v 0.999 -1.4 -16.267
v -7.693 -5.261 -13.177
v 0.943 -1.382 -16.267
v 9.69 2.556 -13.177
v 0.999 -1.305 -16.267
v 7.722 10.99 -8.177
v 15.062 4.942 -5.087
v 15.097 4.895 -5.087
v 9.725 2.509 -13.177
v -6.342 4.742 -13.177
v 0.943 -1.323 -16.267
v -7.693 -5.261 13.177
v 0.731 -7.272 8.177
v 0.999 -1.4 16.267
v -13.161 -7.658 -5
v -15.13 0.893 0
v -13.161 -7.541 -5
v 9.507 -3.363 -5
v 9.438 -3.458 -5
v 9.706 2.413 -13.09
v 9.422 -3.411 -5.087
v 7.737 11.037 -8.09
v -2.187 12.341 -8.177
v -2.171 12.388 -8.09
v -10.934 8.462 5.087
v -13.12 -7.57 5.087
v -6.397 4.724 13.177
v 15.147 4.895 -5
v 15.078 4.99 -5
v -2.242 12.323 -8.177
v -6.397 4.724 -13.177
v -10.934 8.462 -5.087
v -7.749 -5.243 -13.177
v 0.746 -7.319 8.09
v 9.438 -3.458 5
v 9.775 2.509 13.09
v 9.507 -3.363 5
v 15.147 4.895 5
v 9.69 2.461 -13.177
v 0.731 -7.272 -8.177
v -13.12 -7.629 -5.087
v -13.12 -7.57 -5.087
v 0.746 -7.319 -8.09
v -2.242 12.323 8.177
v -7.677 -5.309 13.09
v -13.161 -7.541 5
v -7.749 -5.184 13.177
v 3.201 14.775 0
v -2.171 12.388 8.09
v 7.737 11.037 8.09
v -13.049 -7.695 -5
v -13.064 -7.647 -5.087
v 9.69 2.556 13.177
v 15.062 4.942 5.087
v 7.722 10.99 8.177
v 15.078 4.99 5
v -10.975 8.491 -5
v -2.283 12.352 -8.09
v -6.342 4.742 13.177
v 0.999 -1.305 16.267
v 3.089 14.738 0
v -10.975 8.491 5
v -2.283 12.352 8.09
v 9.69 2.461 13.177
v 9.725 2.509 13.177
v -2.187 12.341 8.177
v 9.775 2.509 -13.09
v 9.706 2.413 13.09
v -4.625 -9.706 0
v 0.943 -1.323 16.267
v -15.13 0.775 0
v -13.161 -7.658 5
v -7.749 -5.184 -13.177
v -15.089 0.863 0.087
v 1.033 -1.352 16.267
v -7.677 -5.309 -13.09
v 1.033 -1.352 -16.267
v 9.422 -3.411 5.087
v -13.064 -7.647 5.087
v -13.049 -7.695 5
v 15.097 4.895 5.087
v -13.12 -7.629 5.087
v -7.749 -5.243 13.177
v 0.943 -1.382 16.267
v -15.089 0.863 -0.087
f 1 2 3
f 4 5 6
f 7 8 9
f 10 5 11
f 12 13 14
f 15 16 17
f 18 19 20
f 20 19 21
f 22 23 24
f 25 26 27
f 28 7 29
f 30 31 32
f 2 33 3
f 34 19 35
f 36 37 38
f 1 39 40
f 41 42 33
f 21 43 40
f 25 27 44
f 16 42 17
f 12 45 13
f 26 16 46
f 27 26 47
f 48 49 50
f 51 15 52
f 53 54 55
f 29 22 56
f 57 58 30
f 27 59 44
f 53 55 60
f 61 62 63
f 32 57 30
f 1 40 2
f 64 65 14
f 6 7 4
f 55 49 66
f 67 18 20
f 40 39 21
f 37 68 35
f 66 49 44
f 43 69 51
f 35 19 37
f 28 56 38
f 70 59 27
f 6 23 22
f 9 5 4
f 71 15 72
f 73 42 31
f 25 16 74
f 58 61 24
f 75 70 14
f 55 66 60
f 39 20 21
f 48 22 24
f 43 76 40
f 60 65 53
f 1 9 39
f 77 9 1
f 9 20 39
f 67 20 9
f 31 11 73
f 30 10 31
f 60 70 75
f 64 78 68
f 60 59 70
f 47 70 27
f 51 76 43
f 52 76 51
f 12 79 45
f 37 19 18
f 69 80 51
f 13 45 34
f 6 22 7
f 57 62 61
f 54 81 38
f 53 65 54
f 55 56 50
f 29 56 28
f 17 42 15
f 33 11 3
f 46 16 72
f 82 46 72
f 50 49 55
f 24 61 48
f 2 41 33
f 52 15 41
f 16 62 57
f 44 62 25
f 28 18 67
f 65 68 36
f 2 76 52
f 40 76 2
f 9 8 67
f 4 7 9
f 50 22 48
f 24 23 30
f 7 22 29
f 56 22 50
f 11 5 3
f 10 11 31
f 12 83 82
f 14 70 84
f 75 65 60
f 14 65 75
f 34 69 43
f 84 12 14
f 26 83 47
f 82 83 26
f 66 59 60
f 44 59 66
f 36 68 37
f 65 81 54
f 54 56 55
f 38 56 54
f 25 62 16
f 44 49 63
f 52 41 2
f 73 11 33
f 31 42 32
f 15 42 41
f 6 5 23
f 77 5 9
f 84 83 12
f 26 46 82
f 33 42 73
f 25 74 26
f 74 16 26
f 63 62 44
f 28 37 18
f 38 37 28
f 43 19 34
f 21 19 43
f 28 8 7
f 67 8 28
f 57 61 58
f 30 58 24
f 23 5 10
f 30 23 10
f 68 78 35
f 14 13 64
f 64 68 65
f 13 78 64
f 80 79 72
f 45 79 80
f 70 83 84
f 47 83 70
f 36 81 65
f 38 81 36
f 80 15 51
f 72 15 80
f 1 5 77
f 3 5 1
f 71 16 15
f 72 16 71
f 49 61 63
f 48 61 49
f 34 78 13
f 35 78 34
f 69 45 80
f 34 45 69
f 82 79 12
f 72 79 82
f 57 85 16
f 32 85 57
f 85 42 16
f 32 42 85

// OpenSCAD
// Auto-generated OpenSCAD file

    inner_points = 10*[[1.504661527029664, 0.48947506274315233, -0.4999999999999145], [-1.3079948667278423, -0.7599647980164363, 0.4999999999999145], [-0.6357029077328671, 0.46948589779540517, -1.3090169943752812], [-0.22020362671136517, 1.2293282153003366, 0.8090169943744602], [0.7706252891456874, 1.09420582817551, -0.8090169943751957], [-1.5048615327414891, 0.08338774737153498, -3.865796571744795e-13], [0.9674919551595329, 0.2508532827872281, -1.3090169943748946], [-1.3079948667276438, -0.759964798016747, -0.5000000000000855], [1.5046615270294654, 0.489475062743463, 0.5000000000000855], [-0.7708252948577115, -0.5213430180605121, 1.3090169943748946], [-0.2202036267110432, 1.2293282152998337, -0.8090169943754346], [-1.0893622517194665, 0.8432300648756529, -0.5000000000005401], [0.09833333015123245, -0.13524486763714477, -1.618033988749895], [-0.7708252948571909, -0.5213430180613257, -1.3090169943750003], [0.9674919551590123, 0.2508532827880416, 1.3090169943750003], [0.098333330150589, -0.13524486763613924, 1.618033988749895], [0.3169659451590877, 1.467949995255758, -4.5458081743277035e-13], [-1.0893622517196655, 0.8432300648759636, 0.4999999999994599], [0.7706252891453657, 1.094205828176013, 0.8090169943746992], [-0.6357029077333877, 0.46948589779621863, 1.3090169943746135], [0.07153360287893762, -0.7224188430740421, -0.8090169943747703], [0.9406922278870392, -0.3363206926493587, 0.5000000000002299], [0.07153360287861593, -0.7224188430735395, 0.8090169943751245], [0.940692227887238, -0.3363206926496693, -0.4999999999997701], [-0.46563596899151527, -0.9610406230294636, 1.444677710793485e-13]];

    outer_points = 10*[[-0.000564910313048521, 1.6180336318009756, -0.0009143233444000093], [0.000564910313048521, -1.6180336318009756, 0.0009143233444000093], [-1.376498108047588, 0.0, 0.8504627841894703], [0.8504625965717973, 0.0010747608291631194, 1.3764978043830696], [-0.4258986806464176, 1.3093488249583056, 0.8498529032449322], [-0.42498463655930974, -1.3086845862361058, 0.8513323094928791], [-0.9515134714882783, 1.3086845862361058, -0.0008695253034087247], [-0.9505994274011704, -1.3093488249583056, 0.0006098809445380104], [0.9505994274011704, 1.3093488249583056, -0.0006098809445380104], [0.9515134714882783, -1.3086845862361058, 0.0008695253034087247], [-0.6885536307365924, 0.5005372701112993, 1.3760052062324764], [-0.688204496962533, -0.49946250928213626, 1.376570289136023], [-1.5390162273083896, 0.49946250928213626, -0.0004925981505932153], [-1.5386670935343303, -0.5005372701112993, 7.248475295340562e-05], [1.5386670935343303, 0.5005372701112993, -7.248475295340562e-05], [1.5390162273083896, -0.49946250928213626, 0.0004925981505932153], [0.2623949304386375, 0.8098863156761693, 1.375960408191485], [0.2629598407516861, -0.8081473161248063, 1.3768747315358851], [1.113117546661972, 0.8098863156761693, 0.8503455013955257], [1.1136824569750208, -0.8081473161248063, 0.8512598247399259], [-0.850578880895062, -0.0005941131744505647, -0.525847139770523], [0.6880882126392683, 0.4999431569368488, -0.5259196245234764], [0.6884373464133277, -0.5000566224565869, -0.5253545416199297], [-0.26307612507495054, 0.8086279637795188, -0.5262240669233383], [-0.26251121476190203, -0.8094056680214567, -0.5253097435789383]];

    // Convex hull for inner set (I)
    module inner_hull() {
        hull() {
            for (p = inner_points) {
                translate(p) sphere(r=0.1);
            }
        }
    }

    // Convex hull for outer set (O) minus inner hull (O \ I)
    module outer_minus_inner() {
        difference() {
            hull() {
                for (p = outer_points) {
                    translate(p) sphere(r=0.1);
                }
            }
            inner_hull(); // Subtract inner hull
        }
    }

    // Convex hull for outer set (O) minus all translated inner hulls
    module outer_minus_AllTranslationInner() {
        difference() {
            hull() {
                for (p = outer_points) {
                    translate(p) sphere(r=0.1);
                }
            }
            hull() {
                translate([0,0,50]) inner_hull();
                translate([0,0,-50]) inner_hull();
            }; // Subtract translated inner hulls
        }
    }

    // Difference between outer_minus_inner and outer_minus_AllTranslationInner
    module outer_minus_inner_diff() {
        difference() {
            // Outer minus inner
            difference() {
                hull() {
                    for (p = outer_points) {
                        translate(p) sphere(r=0.1);
                    }
                }
                inner_hull();
            }

            // Subtract Outer minus AllTranslationInner
            difference() {
                hull() {
                    for (p = outer_points) {
                        translate(p) sphere(r=0.1);
                    }
                }
                hull() {
                    translate([0,0,50]) inner_hull();
                    translate([0,0,-50]) inner_hull();
                };
            }
        }
    }

    // Rendering all with colors applied
    color([1, 0, 0, 0.5]) inner_hull(); // Transparent red
    
